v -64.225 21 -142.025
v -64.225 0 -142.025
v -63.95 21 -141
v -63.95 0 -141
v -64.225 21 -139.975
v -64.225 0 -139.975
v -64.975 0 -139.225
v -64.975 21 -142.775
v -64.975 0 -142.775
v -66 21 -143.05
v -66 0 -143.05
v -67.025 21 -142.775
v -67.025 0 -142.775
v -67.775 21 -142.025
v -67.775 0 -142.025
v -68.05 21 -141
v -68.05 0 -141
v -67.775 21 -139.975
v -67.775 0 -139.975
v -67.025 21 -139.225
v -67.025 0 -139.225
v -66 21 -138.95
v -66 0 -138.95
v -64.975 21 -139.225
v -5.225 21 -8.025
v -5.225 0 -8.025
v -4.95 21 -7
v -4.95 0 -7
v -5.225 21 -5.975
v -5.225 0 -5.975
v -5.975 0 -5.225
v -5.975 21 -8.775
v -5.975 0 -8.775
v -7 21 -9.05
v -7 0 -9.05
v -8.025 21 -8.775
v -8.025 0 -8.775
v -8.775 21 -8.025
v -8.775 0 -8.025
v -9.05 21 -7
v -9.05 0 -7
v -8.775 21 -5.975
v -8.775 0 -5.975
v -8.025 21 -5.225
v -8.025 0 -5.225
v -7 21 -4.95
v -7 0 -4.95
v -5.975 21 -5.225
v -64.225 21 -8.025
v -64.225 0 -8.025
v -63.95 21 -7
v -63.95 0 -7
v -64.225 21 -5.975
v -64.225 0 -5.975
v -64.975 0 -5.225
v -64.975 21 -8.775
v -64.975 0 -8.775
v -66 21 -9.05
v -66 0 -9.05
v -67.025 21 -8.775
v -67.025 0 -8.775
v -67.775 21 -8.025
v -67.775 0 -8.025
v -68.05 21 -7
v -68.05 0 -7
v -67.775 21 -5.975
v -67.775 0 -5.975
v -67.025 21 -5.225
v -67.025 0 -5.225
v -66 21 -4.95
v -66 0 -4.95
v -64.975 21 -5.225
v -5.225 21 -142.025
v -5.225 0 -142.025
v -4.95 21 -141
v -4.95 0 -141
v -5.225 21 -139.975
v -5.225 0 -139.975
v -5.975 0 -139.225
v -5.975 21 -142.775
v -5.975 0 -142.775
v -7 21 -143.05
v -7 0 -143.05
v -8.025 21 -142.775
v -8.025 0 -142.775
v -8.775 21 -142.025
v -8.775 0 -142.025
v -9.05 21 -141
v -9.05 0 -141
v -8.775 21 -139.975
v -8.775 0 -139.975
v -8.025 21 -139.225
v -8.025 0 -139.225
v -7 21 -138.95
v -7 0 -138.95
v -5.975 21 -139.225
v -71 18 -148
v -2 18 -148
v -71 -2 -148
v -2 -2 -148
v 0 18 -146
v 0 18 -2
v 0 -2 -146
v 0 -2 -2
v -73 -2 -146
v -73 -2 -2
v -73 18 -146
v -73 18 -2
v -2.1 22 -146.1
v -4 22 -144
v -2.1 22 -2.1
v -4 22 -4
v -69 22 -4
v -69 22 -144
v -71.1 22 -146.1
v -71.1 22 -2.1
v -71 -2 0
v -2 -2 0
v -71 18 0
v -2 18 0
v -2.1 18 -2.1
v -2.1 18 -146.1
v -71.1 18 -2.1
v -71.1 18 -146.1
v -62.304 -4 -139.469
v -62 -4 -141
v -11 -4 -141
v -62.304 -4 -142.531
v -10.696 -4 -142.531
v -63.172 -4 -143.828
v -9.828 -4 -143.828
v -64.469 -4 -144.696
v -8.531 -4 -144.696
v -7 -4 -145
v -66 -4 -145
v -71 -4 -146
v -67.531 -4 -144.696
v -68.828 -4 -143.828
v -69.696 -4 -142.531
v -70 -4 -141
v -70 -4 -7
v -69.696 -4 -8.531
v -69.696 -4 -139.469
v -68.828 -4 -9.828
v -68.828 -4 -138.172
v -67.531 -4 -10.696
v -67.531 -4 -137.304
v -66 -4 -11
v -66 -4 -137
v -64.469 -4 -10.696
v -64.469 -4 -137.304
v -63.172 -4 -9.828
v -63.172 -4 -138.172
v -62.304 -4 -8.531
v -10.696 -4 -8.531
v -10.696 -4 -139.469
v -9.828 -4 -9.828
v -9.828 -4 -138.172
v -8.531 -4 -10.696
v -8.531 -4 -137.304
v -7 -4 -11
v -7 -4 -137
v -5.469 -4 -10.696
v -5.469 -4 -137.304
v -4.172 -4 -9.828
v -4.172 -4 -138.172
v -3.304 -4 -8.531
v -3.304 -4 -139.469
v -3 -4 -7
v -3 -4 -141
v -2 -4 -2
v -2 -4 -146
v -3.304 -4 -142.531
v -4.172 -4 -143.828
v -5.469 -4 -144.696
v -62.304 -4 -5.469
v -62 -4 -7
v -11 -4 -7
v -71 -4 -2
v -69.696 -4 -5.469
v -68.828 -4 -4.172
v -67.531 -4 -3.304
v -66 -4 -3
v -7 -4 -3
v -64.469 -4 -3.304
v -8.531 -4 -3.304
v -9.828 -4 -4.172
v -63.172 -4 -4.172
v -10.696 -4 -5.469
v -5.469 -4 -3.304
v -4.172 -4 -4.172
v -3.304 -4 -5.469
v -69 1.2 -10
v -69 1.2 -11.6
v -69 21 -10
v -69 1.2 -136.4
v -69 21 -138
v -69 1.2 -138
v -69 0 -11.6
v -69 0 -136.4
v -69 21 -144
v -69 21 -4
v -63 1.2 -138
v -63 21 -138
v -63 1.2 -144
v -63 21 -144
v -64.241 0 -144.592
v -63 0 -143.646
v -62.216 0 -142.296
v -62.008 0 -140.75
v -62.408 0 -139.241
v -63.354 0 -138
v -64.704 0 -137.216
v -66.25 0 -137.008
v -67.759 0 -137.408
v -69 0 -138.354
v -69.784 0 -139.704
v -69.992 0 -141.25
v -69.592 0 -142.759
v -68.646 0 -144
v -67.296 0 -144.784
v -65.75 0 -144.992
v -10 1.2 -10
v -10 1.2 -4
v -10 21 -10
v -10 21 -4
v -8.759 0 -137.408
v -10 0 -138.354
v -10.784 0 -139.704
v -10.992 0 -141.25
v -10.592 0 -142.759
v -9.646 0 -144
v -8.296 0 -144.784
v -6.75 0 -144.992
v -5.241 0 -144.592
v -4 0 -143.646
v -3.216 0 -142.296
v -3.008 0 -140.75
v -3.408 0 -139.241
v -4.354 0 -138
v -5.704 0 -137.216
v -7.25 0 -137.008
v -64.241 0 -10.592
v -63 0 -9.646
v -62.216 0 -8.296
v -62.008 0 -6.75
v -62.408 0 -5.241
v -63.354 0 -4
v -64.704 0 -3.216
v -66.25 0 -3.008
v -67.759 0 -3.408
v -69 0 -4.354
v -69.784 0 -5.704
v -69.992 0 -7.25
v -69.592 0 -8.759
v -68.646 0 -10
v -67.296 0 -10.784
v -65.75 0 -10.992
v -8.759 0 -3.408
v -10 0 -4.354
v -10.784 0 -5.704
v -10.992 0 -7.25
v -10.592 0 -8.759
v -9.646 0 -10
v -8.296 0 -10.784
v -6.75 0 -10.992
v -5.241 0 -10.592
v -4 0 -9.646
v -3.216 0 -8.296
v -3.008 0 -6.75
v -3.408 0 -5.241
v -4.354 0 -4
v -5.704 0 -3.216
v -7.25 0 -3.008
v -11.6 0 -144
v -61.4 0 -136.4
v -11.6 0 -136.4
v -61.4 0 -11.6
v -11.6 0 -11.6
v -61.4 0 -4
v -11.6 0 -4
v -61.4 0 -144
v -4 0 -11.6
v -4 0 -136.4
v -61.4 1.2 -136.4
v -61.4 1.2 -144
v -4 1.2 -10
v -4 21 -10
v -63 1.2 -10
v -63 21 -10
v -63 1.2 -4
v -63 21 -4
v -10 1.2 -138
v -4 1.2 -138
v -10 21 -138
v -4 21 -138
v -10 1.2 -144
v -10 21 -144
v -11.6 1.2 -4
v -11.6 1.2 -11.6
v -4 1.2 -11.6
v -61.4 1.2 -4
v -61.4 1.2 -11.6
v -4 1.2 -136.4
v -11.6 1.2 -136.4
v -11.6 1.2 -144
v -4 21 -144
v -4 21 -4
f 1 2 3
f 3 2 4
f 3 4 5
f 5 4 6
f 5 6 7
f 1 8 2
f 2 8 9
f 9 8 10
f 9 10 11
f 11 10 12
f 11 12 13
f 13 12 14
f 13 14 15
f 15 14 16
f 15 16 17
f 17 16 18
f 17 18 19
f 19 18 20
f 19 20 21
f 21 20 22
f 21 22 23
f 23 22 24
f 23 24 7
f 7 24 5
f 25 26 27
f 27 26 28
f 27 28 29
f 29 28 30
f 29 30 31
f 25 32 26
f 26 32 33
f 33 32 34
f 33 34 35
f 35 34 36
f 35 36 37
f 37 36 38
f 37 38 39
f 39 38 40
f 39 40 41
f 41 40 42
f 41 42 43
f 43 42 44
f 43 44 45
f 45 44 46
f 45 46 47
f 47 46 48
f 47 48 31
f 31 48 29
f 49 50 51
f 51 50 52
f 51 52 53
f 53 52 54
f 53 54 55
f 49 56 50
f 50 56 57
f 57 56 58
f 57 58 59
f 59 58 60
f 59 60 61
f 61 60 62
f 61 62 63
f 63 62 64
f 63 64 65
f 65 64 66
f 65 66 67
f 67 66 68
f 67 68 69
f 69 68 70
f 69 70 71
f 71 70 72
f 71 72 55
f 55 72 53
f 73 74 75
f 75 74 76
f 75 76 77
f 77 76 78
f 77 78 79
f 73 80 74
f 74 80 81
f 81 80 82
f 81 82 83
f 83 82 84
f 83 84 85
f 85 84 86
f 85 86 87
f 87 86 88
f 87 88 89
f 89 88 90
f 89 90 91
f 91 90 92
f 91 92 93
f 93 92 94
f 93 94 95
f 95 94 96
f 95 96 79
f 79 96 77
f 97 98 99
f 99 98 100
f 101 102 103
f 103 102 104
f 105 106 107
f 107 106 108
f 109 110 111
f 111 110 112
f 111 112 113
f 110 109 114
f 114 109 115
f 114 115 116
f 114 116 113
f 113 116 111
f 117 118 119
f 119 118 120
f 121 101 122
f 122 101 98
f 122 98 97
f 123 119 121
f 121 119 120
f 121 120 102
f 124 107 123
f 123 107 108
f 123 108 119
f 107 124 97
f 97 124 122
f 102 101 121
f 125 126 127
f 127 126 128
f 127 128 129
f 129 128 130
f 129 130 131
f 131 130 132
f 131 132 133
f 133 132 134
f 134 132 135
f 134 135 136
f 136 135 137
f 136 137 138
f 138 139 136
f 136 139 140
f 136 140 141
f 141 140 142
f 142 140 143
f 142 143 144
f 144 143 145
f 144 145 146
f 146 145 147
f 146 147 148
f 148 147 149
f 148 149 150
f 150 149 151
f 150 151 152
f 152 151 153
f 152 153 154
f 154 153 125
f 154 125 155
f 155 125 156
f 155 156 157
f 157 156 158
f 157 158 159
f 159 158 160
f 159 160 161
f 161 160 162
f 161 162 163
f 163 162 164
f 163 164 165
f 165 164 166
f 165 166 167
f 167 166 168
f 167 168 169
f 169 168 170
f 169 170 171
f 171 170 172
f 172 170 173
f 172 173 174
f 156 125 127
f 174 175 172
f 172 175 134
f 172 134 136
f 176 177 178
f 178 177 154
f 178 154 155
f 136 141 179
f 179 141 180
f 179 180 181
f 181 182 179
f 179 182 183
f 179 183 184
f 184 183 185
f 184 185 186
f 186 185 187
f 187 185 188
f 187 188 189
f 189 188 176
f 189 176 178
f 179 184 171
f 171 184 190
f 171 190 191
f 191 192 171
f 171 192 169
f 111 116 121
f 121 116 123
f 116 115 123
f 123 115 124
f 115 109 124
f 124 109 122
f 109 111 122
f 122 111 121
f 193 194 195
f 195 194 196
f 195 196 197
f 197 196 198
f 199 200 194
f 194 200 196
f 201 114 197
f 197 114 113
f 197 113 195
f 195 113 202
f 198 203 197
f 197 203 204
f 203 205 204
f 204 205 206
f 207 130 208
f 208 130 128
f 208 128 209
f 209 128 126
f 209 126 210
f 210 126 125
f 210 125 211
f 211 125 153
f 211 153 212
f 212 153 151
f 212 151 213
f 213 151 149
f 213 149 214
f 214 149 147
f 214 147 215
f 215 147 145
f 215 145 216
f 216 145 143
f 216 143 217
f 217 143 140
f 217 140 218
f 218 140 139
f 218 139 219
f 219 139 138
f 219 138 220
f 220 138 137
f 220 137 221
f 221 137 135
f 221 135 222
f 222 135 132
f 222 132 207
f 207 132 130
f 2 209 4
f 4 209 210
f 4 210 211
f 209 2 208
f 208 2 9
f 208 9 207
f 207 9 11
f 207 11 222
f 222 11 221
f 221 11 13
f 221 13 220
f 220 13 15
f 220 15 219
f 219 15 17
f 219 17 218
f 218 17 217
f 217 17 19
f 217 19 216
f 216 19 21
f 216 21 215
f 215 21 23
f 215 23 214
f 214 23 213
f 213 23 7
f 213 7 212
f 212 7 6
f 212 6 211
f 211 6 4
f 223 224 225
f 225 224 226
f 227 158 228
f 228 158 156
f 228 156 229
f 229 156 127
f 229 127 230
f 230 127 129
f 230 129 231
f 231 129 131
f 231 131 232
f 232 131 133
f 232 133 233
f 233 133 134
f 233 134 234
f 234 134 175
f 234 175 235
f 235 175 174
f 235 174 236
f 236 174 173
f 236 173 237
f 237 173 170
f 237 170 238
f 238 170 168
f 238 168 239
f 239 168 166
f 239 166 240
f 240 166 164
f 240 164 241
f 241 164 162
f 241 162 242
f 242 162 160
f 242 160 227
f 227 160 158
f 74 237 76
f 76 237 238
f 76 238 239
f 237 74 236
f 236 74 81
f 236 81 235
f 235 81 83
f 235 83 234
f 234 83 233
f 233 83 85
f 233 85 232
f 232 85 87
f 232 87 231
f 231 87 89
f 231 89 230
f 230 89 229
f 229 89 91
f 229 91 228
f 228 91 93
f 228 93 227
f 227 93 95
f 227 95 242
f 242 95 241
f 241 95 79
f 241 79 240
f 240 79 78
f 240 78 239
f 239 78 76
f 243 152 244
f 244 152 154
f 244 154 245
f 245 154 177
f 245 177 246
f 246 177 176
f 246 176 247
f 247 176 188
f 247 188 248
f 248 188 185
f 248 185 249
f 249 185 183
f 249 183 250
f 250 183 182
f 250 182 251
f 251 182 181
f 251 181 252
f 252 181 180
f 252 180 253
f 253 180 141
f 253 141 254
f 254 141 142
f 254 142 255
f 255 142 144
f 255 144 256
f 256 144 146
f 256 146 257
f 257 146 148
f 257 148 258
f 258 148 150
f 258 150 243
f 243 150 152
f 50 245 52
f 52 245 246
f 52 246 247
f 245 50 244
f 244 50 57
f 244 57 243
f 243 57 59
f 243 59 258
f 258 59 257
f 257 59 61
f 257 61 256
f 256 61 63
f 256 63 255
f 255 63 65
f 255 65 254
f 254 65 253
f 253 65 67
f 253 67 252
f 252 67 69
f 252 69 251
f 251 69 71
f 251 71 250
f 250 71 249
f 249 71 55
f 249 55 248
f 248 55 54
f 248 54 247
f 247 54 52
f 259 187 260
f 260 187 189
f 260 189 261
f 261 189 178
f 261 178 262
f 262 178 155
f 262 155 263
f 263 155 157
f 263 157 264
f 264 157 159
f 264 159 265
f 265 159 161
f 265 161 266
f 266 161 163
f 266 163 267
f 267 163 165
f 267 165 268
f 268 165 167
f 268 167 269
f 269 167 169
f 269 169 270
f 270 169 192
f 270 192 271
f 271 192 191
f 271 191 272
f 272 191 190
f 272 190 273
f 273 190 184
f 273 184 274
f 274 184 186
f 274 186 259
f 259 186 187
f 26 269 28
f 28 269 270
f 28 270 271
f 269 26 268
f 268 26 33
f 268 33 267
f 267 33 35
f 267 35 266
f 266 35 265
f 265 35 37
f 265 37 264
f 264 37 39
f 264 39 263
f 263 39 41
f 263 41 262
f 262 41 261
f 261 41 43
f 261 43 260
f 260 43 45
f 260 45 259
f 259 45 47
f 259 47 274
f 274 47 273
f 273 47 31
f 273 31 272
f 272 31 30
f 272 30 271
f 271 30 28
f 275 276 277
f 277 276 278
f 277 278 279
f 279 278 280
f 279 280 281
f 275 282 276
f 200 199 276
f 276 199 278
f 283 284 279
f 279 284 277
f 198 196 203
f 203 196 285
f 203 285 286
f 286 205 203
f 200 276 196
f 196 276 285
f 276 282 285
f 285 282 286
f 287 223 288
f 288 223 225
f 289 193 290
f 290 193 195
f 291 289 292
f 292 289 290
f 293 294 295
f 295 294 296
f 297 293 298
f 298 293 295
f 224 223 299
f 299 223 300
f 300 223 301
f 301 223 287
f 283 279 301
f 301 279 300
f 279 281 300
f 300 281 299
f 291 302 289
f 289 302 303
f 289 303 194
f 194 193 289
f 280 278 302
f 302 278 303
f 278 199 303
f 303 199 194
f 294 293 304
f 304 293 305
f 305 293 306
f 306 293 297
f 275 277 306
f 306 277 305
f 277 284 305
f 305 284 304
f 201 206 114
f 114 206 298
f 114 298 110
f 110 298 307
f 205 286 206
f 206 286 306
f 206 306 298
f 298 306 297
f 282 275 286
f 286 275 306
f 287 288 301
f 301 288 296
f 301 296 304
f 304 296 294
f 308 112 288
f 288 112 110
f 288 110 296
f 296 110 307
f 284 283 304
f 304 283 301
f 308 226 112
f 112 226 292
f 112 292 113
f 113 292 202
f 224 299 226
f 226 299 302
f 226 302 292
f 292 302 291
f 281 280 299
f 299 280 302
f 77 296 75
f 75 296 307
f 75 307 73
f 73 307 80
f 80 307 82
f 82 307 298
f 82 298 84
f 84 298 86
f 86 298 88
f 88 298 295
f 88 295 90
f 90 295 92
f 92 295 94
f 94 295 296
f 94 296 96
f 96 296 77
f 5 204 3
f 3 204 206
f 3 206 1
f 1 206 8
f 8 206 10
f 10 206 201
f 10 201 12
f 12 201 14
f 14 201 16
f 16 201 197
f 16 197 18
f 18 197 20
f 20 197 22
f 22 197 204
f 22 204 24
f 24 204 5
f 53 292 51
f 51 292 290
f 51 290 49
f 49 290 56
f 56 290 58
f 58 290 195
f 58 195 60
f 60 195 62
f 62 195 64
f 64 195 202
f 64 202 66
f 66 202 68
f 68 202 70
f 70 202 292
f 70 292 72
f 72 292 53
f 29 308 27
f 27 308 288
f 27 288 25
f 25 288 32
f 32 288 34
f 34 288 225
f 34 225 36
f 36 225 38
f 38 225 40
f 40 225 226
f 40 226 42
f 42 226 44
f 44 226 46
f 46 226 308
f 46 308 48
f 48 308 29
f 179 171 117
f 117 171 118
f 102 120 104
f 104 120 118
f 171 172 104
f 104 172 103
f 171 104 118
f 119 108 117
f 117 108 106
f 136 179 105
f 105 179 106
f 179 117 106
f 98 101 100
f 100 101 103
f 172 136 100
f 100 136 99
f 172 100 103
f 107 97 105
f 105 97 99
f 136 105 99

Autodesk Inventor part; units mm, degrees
ref_plane "YZ Plane" through (0, 0, 0) normal (1, 0, 0) x (0, 1, 0)
ref_plane "XZ Plane" through (0, 0, 0) normal (0, 1, 0) x (-1, 0, 0)
ref_plane "XY Plane" through (0, 0, 0) normal (0, 0, 1) x (1, 0, 0)
sketch "Sketch1" plane through (0, 0, 0) normal (0, 1, 0) x (-1, 0, 0)
  line L0 (0, 0) -> (73, 0)
  line L1 (73, 0) -> (73, -148)
  line L2 (73, -148) -> (0, -148)
  line L3 (0, -148) -> (0, 0)
  dimension "d0" = 73
  dimension "d1" = 148
extrude "Extrusion1" add sketch "Sketch1" against normal blind 4
sketch "Sketch2" plane through (0, 0, 0) normal (0, 1, 0) x (1, 0, 0)
  line L0 (-73, 148) -> (0, 148) projected
  line L1 (0, 148) -> (0, 0) projected
  line L2 (0, 148) -> (0, 0)
  line L3 (0, 0) -> (-73, 0) projected
  line L4 (0, 0) -> (-73, 0)
  line L5 (-73, 0) -> (-73, 148)
  line L6 (0, 148) -> (0, 144) construction
  line L7 (0, 148) -> (0, 0) construction
  line L8 (0, 144) -> (-4, 144) construction
  line L9 (-4, 144) -> (-69, 144)
  line L10 (-69, 144) -> (-69, 4)
  line L11 (-69, 4) -> (-4, 4)
  line L12 (-4, 4) -> (-4, 144)
  dimension "d4" = 4
  dimension "d5" = 4
  dimension "d6" = 90
  dimension "d7" = 65
  dimension "d8" = 140
extrude "Extrusion2" add sketch "Sketch2" along normal blind 22
sketch "Sketch3" plane through (0, 22, 0) normal (0, 1, 0) x (1, 0, 0)
  line L0 (-4, 4) -> (-69, 4)
  line L1 (-4, 4) -> (-2.1, 4) construction
  line L2 (-2.1, 4) -> (-2.1, 2.1) construction
  line L3 (-2.1, 2.1) -> (-71.1, 2.1)
  line L4 (-73, 148) -> (-73, 0) projected
  line L5 (-71.1, 2.1) -> (-71.1, 146.1)
  line L6 (-71.1, 146.1) -> (-2.1, 146.1)
  line L7 (-2.1, 146.1) -> (-2.1, 2.1)
  line L8 (-73, 0) -> (0, 0) projected
  line L9 (0, 148) -> (-73, 148) projected
  line L10 (-73, 0) -> (-73, 148)
  line L11 (-73, 148) -> (0, 148)
  line L12 (0, 148) -> (0, 0)
  point P0 (-4, 144)
  point P1 (-69, 144)
  dimension "d11" = 1.9
  dimension "d12" = 1.9
  dimension "d13" = 69
  dimension "d14" = 144
  dimension "d15" = 69
extrude "Extrusion3" cut sketch "Sketch3" against normal blind 4
sketch "Sketch4" plane through (0, 0, 0) normal (0, 1, 0) x (1, 0, 0)
  line L0 (-69, 4) -> (-69, 144) projected
  line L1 (-69, 144) -> (-63, 144)
  line L2 (-63, 144) -> (-63, 138)
  line L3 (-63, 138) -> (-69, 138)
  line L4 (-69, 138) -> (-69, 144)
  point P0 (0, 0)
  dimension "d18" = 6
  dimension "d19" = 6
extrude "Extrusion4" add sketch "Sketch4" along normal blind 15
sketch "Sketch5" plane through (0, 22, 0) normal (0, 1, 0) x (1, 0, 0)
  line L0 (-69, 138) -> (-63, 138) construction
  line L1 (-63, 138) -> (-66, 138) construction
  line L2 (-63, 138) -> (-60, 138) construction
  line L3 (-66, 138) -> (-66, 141) construction
  circle A0 centre (-66, 141) radius 2
  point P0 (0, 0)
  dimension "d22" = 3
  dimension "d23" = 180
  dimension "d24" = 3
  dimension "d25" = 4
extrude "Extrusion5" cut sketch "Sketch5" against normal blind 20
sketch "Sketch6" plane through (0, -4, 0) normal (0, -1, 0) x (1, 0, 0)
  line L0 (-73, 0) -> (-73, -148) construction
  line L1 (-73, -148) -> (-73, -141) construction
  line L2 (-73, -141) -> (-66, -141) construction
  circle A0 centre (-66, -141) radius 4
  point P0 (0, 0)
  dimension "d28" = 7
  dimension "d41" = 7
  dimension "d42" = 8
extrude "Extrusion6" cut sketch "Sketch6" against normal blind 4
pattern_linear "Rectangular Pattern1" count 2 spacing 59 along (1, 0, 0) count 2 spacing 134 along (0, 0, 1) of "Extrusion4", "Extrusion5", "Extrusion6"
sketch "Sketch7" plane through (0, 0, 0) normal (0, 1, 0) x (1, 0, 0)
  line L0 (-69, 138) -> (-63, 138) projected
  line L1 (-69, 138) -> (-63, 138)
  line L2 (-10, 144) -> (-63, 144) projected
  line L3 (-63, 138) -> (-63, 144)
  line L4 (-63, 144) -> (-61.4, 144)
  line L5 (-69, 138) -> (-69, 136.4)
  line L6 (-69, 138) -> (-69, 10) projected
  line L7 (-69, 136.4) -> (-61.4, 136.4)
  line L8 (-61.4, 136.4) -> (-61.4, 144)
  point P0 (0, 0)
  dimension "d43" = 1.6
  dimension "d44" = 1.6
extrude "Extrusion7" add sketch "Sketch7" along normal blind 1.2
sketch "Sketch8" plane through (0, 0, 0) normal (0, 1, 0) x (1, 0, 0)
  line L0 (-10, 4) -> (-10, 4.3542) projected
  line L1 (-10, 4) -> (-11.6, 4)
  line L2 (-4, 4) -> (-69, 4) projected
  line L3 (-4, 10) -> (-10, 10) projected
  line L4 (-10, 4) -> (-10, 10)
  line L5 (-10, 10) -> (-4, 10)
  line L6 (-4, 10) -> (-4, 11.6)
  line L7 (-4, 11.6) -> (-11.6, 11.6)
  line L8 (-11.6, 11.6) -> (-11.6, 4)
  line L9 (-11.6, 11.6) -> (-69, 11.6) construction
  line L10 (-69, 136.4) -> (-69, 10) projected
  line L11 (-69, 10) -> (-69, 11.6)
  line L12 (-69, 10) -> (-63, 10)
  line L13 (-63, 10) -> (-63, 4)
  line L14 (-63, 4) -> (-61.4, 4)
  line L15 (-63, 4) -> (-10, 4) projected
  line L16 (-61.4, 4) -> (-61.4, 11.6)
  line L17 (-69, 11.6) -> (-61.4, 11.6)
  line L18 (-9.6458, 138) -> (-10, 138) projected
  line L19 (-4, 138) -> (-2.4, 138) construction
  line L20 (-10, 144) -> (-61.4, 144) projected
  line L21 (-10, 138) -> (-10, 144)
  line L22 (-10, 144) -> (-11.6, 144)
  line L23 (-10, 138) -> (-4, 138)
  line L24 (-4, 138) -> (-4, 136.4)
  line L25 (-4, 10) -> (-4, 138) projected
  line L26 (-4, 136.4) -> (-11.6, 136.4)
  line L27 (-11.6, 136.4) -> (-11.6, 144)
  point P0 (0, 0)
  dimension "d47" = 1.6
  dimension "d48" = 1.6
  dimension "d49" = 1.6
  dimension "d55" = 7.6
  dimension "d56" = 7.6
  dimension "d57" = 1.6
  dimension "d58" = 1.6
  dimension "d59" = 90
extrude "Extrusion8" add sketch "Sketch8" along normal blind 1.2
sketch "Sketch9" plane through (-69, 15, -10) normal (0, 1, 0) x (1, 0, 0)
  line L0 (6, -6) -> (6, 0) projected
  line L1 (0, -6) -> (0, 134) projected
  line L2 (6, 0) -> (0, 0)
  line L3 (0, 0) -> (0, -6)
  line L4 (0, -6) -> (6, -6)
  line L5 (6, -6) -> (6, 0)
  line L6 (65, 134) -> (65, -6) projected
  line L7 (65, 1.6) -> (65, -6)
  line L8 (65, -6) -> (57.4, -6)
  line L9 (59, 134) -> (59, 128) projected
  line L10 (65, 134) -> (59, 134)
  line L11 (59, 134) -> (59, 128)
  line L12 (59, 128) -> (65, 128)
  line L13 (65, 128) -> (65, 134)
  line L14 (65, -6) -> (59, -6) projected
  line L15 (65, -6) -> (59, -6)
  line L16 (59, -6) -> (59, 0)
  line L17 (59, 0) -> (65, 0)
  line L18 (65, 0) -> (65, -6)
  line L19 (6, 128) -> (6, 134) projected
  line L20 (0, 134) -> (6, 134) projected
  line L21 (6, 128) -> (0, 128)
  line L22 (0, 128) -> (0, 134)
  line L23 (0, 134) -> (6, 134)
  line L24 (6, 134) -> (6, 128)
  point P0 (69, -10)
  point P1 (57.4, 1.6)
extrude "Extrusion9" add sketch "Sketch9" along normal blind 6
sketch "Sketch10" plane through (-66, 0, -7) normal (0, -1, 0) x (1, 0, 0)
  circle A0 centre (0, 0) radius 2.05
  circle A1 centre (59, 0) radius 2 projected
  circle A2 centre (59, 0) radius 2.05
  circle A3 centre (0, -134) radius 2 projected
  circle A4 centre (0, -134) radius 2.05
  circle A5 centre (59, -134) radius 2.05
  point P0 (66, 7)
  dimension "d64" = 4.1
  dimension "d65" = 4.1
  dimension "d66" = 4.1
  dimension "d67" = 4.1
extrude "Extrusion10" cut sketch "Sketch10" against normal blind 200 contours A0 | A1 | A3 | A5
sketch "Sketch11" plane through (-7, 0, -7) normal (0, -1, 0) x (1, 0, 0)
  circle A0 centre (0, 0) radius 2.05
  point P0 (7, 7)
  dimension "d70" = 4.1
extrude "Extrusion11" cut sketch "Sketch11" against normal blind 100
sketch "Sketch12" plane through (-66, 0, -141) normal (0, -1, 0) x (1, 0, 0)
  circle A0 centre (0, 0) radius 2.05
  point P0 (66, 141)
  dimension "d73" = 4.1
extrude "Extrusion12" cut sketch "Sketch12" against normal blind 100
chamfer "Chamfer1" distance 2 angle 45 8 edges at (-36.5, -4, 0) (-73, 7, 0) (-73, -4, -74) (0, 7, 0) (0, -4, -74) (0, 7, -148) (-36.5, -4, -148) (-73, 7, -148)
properties part number "mangOH bottom"
